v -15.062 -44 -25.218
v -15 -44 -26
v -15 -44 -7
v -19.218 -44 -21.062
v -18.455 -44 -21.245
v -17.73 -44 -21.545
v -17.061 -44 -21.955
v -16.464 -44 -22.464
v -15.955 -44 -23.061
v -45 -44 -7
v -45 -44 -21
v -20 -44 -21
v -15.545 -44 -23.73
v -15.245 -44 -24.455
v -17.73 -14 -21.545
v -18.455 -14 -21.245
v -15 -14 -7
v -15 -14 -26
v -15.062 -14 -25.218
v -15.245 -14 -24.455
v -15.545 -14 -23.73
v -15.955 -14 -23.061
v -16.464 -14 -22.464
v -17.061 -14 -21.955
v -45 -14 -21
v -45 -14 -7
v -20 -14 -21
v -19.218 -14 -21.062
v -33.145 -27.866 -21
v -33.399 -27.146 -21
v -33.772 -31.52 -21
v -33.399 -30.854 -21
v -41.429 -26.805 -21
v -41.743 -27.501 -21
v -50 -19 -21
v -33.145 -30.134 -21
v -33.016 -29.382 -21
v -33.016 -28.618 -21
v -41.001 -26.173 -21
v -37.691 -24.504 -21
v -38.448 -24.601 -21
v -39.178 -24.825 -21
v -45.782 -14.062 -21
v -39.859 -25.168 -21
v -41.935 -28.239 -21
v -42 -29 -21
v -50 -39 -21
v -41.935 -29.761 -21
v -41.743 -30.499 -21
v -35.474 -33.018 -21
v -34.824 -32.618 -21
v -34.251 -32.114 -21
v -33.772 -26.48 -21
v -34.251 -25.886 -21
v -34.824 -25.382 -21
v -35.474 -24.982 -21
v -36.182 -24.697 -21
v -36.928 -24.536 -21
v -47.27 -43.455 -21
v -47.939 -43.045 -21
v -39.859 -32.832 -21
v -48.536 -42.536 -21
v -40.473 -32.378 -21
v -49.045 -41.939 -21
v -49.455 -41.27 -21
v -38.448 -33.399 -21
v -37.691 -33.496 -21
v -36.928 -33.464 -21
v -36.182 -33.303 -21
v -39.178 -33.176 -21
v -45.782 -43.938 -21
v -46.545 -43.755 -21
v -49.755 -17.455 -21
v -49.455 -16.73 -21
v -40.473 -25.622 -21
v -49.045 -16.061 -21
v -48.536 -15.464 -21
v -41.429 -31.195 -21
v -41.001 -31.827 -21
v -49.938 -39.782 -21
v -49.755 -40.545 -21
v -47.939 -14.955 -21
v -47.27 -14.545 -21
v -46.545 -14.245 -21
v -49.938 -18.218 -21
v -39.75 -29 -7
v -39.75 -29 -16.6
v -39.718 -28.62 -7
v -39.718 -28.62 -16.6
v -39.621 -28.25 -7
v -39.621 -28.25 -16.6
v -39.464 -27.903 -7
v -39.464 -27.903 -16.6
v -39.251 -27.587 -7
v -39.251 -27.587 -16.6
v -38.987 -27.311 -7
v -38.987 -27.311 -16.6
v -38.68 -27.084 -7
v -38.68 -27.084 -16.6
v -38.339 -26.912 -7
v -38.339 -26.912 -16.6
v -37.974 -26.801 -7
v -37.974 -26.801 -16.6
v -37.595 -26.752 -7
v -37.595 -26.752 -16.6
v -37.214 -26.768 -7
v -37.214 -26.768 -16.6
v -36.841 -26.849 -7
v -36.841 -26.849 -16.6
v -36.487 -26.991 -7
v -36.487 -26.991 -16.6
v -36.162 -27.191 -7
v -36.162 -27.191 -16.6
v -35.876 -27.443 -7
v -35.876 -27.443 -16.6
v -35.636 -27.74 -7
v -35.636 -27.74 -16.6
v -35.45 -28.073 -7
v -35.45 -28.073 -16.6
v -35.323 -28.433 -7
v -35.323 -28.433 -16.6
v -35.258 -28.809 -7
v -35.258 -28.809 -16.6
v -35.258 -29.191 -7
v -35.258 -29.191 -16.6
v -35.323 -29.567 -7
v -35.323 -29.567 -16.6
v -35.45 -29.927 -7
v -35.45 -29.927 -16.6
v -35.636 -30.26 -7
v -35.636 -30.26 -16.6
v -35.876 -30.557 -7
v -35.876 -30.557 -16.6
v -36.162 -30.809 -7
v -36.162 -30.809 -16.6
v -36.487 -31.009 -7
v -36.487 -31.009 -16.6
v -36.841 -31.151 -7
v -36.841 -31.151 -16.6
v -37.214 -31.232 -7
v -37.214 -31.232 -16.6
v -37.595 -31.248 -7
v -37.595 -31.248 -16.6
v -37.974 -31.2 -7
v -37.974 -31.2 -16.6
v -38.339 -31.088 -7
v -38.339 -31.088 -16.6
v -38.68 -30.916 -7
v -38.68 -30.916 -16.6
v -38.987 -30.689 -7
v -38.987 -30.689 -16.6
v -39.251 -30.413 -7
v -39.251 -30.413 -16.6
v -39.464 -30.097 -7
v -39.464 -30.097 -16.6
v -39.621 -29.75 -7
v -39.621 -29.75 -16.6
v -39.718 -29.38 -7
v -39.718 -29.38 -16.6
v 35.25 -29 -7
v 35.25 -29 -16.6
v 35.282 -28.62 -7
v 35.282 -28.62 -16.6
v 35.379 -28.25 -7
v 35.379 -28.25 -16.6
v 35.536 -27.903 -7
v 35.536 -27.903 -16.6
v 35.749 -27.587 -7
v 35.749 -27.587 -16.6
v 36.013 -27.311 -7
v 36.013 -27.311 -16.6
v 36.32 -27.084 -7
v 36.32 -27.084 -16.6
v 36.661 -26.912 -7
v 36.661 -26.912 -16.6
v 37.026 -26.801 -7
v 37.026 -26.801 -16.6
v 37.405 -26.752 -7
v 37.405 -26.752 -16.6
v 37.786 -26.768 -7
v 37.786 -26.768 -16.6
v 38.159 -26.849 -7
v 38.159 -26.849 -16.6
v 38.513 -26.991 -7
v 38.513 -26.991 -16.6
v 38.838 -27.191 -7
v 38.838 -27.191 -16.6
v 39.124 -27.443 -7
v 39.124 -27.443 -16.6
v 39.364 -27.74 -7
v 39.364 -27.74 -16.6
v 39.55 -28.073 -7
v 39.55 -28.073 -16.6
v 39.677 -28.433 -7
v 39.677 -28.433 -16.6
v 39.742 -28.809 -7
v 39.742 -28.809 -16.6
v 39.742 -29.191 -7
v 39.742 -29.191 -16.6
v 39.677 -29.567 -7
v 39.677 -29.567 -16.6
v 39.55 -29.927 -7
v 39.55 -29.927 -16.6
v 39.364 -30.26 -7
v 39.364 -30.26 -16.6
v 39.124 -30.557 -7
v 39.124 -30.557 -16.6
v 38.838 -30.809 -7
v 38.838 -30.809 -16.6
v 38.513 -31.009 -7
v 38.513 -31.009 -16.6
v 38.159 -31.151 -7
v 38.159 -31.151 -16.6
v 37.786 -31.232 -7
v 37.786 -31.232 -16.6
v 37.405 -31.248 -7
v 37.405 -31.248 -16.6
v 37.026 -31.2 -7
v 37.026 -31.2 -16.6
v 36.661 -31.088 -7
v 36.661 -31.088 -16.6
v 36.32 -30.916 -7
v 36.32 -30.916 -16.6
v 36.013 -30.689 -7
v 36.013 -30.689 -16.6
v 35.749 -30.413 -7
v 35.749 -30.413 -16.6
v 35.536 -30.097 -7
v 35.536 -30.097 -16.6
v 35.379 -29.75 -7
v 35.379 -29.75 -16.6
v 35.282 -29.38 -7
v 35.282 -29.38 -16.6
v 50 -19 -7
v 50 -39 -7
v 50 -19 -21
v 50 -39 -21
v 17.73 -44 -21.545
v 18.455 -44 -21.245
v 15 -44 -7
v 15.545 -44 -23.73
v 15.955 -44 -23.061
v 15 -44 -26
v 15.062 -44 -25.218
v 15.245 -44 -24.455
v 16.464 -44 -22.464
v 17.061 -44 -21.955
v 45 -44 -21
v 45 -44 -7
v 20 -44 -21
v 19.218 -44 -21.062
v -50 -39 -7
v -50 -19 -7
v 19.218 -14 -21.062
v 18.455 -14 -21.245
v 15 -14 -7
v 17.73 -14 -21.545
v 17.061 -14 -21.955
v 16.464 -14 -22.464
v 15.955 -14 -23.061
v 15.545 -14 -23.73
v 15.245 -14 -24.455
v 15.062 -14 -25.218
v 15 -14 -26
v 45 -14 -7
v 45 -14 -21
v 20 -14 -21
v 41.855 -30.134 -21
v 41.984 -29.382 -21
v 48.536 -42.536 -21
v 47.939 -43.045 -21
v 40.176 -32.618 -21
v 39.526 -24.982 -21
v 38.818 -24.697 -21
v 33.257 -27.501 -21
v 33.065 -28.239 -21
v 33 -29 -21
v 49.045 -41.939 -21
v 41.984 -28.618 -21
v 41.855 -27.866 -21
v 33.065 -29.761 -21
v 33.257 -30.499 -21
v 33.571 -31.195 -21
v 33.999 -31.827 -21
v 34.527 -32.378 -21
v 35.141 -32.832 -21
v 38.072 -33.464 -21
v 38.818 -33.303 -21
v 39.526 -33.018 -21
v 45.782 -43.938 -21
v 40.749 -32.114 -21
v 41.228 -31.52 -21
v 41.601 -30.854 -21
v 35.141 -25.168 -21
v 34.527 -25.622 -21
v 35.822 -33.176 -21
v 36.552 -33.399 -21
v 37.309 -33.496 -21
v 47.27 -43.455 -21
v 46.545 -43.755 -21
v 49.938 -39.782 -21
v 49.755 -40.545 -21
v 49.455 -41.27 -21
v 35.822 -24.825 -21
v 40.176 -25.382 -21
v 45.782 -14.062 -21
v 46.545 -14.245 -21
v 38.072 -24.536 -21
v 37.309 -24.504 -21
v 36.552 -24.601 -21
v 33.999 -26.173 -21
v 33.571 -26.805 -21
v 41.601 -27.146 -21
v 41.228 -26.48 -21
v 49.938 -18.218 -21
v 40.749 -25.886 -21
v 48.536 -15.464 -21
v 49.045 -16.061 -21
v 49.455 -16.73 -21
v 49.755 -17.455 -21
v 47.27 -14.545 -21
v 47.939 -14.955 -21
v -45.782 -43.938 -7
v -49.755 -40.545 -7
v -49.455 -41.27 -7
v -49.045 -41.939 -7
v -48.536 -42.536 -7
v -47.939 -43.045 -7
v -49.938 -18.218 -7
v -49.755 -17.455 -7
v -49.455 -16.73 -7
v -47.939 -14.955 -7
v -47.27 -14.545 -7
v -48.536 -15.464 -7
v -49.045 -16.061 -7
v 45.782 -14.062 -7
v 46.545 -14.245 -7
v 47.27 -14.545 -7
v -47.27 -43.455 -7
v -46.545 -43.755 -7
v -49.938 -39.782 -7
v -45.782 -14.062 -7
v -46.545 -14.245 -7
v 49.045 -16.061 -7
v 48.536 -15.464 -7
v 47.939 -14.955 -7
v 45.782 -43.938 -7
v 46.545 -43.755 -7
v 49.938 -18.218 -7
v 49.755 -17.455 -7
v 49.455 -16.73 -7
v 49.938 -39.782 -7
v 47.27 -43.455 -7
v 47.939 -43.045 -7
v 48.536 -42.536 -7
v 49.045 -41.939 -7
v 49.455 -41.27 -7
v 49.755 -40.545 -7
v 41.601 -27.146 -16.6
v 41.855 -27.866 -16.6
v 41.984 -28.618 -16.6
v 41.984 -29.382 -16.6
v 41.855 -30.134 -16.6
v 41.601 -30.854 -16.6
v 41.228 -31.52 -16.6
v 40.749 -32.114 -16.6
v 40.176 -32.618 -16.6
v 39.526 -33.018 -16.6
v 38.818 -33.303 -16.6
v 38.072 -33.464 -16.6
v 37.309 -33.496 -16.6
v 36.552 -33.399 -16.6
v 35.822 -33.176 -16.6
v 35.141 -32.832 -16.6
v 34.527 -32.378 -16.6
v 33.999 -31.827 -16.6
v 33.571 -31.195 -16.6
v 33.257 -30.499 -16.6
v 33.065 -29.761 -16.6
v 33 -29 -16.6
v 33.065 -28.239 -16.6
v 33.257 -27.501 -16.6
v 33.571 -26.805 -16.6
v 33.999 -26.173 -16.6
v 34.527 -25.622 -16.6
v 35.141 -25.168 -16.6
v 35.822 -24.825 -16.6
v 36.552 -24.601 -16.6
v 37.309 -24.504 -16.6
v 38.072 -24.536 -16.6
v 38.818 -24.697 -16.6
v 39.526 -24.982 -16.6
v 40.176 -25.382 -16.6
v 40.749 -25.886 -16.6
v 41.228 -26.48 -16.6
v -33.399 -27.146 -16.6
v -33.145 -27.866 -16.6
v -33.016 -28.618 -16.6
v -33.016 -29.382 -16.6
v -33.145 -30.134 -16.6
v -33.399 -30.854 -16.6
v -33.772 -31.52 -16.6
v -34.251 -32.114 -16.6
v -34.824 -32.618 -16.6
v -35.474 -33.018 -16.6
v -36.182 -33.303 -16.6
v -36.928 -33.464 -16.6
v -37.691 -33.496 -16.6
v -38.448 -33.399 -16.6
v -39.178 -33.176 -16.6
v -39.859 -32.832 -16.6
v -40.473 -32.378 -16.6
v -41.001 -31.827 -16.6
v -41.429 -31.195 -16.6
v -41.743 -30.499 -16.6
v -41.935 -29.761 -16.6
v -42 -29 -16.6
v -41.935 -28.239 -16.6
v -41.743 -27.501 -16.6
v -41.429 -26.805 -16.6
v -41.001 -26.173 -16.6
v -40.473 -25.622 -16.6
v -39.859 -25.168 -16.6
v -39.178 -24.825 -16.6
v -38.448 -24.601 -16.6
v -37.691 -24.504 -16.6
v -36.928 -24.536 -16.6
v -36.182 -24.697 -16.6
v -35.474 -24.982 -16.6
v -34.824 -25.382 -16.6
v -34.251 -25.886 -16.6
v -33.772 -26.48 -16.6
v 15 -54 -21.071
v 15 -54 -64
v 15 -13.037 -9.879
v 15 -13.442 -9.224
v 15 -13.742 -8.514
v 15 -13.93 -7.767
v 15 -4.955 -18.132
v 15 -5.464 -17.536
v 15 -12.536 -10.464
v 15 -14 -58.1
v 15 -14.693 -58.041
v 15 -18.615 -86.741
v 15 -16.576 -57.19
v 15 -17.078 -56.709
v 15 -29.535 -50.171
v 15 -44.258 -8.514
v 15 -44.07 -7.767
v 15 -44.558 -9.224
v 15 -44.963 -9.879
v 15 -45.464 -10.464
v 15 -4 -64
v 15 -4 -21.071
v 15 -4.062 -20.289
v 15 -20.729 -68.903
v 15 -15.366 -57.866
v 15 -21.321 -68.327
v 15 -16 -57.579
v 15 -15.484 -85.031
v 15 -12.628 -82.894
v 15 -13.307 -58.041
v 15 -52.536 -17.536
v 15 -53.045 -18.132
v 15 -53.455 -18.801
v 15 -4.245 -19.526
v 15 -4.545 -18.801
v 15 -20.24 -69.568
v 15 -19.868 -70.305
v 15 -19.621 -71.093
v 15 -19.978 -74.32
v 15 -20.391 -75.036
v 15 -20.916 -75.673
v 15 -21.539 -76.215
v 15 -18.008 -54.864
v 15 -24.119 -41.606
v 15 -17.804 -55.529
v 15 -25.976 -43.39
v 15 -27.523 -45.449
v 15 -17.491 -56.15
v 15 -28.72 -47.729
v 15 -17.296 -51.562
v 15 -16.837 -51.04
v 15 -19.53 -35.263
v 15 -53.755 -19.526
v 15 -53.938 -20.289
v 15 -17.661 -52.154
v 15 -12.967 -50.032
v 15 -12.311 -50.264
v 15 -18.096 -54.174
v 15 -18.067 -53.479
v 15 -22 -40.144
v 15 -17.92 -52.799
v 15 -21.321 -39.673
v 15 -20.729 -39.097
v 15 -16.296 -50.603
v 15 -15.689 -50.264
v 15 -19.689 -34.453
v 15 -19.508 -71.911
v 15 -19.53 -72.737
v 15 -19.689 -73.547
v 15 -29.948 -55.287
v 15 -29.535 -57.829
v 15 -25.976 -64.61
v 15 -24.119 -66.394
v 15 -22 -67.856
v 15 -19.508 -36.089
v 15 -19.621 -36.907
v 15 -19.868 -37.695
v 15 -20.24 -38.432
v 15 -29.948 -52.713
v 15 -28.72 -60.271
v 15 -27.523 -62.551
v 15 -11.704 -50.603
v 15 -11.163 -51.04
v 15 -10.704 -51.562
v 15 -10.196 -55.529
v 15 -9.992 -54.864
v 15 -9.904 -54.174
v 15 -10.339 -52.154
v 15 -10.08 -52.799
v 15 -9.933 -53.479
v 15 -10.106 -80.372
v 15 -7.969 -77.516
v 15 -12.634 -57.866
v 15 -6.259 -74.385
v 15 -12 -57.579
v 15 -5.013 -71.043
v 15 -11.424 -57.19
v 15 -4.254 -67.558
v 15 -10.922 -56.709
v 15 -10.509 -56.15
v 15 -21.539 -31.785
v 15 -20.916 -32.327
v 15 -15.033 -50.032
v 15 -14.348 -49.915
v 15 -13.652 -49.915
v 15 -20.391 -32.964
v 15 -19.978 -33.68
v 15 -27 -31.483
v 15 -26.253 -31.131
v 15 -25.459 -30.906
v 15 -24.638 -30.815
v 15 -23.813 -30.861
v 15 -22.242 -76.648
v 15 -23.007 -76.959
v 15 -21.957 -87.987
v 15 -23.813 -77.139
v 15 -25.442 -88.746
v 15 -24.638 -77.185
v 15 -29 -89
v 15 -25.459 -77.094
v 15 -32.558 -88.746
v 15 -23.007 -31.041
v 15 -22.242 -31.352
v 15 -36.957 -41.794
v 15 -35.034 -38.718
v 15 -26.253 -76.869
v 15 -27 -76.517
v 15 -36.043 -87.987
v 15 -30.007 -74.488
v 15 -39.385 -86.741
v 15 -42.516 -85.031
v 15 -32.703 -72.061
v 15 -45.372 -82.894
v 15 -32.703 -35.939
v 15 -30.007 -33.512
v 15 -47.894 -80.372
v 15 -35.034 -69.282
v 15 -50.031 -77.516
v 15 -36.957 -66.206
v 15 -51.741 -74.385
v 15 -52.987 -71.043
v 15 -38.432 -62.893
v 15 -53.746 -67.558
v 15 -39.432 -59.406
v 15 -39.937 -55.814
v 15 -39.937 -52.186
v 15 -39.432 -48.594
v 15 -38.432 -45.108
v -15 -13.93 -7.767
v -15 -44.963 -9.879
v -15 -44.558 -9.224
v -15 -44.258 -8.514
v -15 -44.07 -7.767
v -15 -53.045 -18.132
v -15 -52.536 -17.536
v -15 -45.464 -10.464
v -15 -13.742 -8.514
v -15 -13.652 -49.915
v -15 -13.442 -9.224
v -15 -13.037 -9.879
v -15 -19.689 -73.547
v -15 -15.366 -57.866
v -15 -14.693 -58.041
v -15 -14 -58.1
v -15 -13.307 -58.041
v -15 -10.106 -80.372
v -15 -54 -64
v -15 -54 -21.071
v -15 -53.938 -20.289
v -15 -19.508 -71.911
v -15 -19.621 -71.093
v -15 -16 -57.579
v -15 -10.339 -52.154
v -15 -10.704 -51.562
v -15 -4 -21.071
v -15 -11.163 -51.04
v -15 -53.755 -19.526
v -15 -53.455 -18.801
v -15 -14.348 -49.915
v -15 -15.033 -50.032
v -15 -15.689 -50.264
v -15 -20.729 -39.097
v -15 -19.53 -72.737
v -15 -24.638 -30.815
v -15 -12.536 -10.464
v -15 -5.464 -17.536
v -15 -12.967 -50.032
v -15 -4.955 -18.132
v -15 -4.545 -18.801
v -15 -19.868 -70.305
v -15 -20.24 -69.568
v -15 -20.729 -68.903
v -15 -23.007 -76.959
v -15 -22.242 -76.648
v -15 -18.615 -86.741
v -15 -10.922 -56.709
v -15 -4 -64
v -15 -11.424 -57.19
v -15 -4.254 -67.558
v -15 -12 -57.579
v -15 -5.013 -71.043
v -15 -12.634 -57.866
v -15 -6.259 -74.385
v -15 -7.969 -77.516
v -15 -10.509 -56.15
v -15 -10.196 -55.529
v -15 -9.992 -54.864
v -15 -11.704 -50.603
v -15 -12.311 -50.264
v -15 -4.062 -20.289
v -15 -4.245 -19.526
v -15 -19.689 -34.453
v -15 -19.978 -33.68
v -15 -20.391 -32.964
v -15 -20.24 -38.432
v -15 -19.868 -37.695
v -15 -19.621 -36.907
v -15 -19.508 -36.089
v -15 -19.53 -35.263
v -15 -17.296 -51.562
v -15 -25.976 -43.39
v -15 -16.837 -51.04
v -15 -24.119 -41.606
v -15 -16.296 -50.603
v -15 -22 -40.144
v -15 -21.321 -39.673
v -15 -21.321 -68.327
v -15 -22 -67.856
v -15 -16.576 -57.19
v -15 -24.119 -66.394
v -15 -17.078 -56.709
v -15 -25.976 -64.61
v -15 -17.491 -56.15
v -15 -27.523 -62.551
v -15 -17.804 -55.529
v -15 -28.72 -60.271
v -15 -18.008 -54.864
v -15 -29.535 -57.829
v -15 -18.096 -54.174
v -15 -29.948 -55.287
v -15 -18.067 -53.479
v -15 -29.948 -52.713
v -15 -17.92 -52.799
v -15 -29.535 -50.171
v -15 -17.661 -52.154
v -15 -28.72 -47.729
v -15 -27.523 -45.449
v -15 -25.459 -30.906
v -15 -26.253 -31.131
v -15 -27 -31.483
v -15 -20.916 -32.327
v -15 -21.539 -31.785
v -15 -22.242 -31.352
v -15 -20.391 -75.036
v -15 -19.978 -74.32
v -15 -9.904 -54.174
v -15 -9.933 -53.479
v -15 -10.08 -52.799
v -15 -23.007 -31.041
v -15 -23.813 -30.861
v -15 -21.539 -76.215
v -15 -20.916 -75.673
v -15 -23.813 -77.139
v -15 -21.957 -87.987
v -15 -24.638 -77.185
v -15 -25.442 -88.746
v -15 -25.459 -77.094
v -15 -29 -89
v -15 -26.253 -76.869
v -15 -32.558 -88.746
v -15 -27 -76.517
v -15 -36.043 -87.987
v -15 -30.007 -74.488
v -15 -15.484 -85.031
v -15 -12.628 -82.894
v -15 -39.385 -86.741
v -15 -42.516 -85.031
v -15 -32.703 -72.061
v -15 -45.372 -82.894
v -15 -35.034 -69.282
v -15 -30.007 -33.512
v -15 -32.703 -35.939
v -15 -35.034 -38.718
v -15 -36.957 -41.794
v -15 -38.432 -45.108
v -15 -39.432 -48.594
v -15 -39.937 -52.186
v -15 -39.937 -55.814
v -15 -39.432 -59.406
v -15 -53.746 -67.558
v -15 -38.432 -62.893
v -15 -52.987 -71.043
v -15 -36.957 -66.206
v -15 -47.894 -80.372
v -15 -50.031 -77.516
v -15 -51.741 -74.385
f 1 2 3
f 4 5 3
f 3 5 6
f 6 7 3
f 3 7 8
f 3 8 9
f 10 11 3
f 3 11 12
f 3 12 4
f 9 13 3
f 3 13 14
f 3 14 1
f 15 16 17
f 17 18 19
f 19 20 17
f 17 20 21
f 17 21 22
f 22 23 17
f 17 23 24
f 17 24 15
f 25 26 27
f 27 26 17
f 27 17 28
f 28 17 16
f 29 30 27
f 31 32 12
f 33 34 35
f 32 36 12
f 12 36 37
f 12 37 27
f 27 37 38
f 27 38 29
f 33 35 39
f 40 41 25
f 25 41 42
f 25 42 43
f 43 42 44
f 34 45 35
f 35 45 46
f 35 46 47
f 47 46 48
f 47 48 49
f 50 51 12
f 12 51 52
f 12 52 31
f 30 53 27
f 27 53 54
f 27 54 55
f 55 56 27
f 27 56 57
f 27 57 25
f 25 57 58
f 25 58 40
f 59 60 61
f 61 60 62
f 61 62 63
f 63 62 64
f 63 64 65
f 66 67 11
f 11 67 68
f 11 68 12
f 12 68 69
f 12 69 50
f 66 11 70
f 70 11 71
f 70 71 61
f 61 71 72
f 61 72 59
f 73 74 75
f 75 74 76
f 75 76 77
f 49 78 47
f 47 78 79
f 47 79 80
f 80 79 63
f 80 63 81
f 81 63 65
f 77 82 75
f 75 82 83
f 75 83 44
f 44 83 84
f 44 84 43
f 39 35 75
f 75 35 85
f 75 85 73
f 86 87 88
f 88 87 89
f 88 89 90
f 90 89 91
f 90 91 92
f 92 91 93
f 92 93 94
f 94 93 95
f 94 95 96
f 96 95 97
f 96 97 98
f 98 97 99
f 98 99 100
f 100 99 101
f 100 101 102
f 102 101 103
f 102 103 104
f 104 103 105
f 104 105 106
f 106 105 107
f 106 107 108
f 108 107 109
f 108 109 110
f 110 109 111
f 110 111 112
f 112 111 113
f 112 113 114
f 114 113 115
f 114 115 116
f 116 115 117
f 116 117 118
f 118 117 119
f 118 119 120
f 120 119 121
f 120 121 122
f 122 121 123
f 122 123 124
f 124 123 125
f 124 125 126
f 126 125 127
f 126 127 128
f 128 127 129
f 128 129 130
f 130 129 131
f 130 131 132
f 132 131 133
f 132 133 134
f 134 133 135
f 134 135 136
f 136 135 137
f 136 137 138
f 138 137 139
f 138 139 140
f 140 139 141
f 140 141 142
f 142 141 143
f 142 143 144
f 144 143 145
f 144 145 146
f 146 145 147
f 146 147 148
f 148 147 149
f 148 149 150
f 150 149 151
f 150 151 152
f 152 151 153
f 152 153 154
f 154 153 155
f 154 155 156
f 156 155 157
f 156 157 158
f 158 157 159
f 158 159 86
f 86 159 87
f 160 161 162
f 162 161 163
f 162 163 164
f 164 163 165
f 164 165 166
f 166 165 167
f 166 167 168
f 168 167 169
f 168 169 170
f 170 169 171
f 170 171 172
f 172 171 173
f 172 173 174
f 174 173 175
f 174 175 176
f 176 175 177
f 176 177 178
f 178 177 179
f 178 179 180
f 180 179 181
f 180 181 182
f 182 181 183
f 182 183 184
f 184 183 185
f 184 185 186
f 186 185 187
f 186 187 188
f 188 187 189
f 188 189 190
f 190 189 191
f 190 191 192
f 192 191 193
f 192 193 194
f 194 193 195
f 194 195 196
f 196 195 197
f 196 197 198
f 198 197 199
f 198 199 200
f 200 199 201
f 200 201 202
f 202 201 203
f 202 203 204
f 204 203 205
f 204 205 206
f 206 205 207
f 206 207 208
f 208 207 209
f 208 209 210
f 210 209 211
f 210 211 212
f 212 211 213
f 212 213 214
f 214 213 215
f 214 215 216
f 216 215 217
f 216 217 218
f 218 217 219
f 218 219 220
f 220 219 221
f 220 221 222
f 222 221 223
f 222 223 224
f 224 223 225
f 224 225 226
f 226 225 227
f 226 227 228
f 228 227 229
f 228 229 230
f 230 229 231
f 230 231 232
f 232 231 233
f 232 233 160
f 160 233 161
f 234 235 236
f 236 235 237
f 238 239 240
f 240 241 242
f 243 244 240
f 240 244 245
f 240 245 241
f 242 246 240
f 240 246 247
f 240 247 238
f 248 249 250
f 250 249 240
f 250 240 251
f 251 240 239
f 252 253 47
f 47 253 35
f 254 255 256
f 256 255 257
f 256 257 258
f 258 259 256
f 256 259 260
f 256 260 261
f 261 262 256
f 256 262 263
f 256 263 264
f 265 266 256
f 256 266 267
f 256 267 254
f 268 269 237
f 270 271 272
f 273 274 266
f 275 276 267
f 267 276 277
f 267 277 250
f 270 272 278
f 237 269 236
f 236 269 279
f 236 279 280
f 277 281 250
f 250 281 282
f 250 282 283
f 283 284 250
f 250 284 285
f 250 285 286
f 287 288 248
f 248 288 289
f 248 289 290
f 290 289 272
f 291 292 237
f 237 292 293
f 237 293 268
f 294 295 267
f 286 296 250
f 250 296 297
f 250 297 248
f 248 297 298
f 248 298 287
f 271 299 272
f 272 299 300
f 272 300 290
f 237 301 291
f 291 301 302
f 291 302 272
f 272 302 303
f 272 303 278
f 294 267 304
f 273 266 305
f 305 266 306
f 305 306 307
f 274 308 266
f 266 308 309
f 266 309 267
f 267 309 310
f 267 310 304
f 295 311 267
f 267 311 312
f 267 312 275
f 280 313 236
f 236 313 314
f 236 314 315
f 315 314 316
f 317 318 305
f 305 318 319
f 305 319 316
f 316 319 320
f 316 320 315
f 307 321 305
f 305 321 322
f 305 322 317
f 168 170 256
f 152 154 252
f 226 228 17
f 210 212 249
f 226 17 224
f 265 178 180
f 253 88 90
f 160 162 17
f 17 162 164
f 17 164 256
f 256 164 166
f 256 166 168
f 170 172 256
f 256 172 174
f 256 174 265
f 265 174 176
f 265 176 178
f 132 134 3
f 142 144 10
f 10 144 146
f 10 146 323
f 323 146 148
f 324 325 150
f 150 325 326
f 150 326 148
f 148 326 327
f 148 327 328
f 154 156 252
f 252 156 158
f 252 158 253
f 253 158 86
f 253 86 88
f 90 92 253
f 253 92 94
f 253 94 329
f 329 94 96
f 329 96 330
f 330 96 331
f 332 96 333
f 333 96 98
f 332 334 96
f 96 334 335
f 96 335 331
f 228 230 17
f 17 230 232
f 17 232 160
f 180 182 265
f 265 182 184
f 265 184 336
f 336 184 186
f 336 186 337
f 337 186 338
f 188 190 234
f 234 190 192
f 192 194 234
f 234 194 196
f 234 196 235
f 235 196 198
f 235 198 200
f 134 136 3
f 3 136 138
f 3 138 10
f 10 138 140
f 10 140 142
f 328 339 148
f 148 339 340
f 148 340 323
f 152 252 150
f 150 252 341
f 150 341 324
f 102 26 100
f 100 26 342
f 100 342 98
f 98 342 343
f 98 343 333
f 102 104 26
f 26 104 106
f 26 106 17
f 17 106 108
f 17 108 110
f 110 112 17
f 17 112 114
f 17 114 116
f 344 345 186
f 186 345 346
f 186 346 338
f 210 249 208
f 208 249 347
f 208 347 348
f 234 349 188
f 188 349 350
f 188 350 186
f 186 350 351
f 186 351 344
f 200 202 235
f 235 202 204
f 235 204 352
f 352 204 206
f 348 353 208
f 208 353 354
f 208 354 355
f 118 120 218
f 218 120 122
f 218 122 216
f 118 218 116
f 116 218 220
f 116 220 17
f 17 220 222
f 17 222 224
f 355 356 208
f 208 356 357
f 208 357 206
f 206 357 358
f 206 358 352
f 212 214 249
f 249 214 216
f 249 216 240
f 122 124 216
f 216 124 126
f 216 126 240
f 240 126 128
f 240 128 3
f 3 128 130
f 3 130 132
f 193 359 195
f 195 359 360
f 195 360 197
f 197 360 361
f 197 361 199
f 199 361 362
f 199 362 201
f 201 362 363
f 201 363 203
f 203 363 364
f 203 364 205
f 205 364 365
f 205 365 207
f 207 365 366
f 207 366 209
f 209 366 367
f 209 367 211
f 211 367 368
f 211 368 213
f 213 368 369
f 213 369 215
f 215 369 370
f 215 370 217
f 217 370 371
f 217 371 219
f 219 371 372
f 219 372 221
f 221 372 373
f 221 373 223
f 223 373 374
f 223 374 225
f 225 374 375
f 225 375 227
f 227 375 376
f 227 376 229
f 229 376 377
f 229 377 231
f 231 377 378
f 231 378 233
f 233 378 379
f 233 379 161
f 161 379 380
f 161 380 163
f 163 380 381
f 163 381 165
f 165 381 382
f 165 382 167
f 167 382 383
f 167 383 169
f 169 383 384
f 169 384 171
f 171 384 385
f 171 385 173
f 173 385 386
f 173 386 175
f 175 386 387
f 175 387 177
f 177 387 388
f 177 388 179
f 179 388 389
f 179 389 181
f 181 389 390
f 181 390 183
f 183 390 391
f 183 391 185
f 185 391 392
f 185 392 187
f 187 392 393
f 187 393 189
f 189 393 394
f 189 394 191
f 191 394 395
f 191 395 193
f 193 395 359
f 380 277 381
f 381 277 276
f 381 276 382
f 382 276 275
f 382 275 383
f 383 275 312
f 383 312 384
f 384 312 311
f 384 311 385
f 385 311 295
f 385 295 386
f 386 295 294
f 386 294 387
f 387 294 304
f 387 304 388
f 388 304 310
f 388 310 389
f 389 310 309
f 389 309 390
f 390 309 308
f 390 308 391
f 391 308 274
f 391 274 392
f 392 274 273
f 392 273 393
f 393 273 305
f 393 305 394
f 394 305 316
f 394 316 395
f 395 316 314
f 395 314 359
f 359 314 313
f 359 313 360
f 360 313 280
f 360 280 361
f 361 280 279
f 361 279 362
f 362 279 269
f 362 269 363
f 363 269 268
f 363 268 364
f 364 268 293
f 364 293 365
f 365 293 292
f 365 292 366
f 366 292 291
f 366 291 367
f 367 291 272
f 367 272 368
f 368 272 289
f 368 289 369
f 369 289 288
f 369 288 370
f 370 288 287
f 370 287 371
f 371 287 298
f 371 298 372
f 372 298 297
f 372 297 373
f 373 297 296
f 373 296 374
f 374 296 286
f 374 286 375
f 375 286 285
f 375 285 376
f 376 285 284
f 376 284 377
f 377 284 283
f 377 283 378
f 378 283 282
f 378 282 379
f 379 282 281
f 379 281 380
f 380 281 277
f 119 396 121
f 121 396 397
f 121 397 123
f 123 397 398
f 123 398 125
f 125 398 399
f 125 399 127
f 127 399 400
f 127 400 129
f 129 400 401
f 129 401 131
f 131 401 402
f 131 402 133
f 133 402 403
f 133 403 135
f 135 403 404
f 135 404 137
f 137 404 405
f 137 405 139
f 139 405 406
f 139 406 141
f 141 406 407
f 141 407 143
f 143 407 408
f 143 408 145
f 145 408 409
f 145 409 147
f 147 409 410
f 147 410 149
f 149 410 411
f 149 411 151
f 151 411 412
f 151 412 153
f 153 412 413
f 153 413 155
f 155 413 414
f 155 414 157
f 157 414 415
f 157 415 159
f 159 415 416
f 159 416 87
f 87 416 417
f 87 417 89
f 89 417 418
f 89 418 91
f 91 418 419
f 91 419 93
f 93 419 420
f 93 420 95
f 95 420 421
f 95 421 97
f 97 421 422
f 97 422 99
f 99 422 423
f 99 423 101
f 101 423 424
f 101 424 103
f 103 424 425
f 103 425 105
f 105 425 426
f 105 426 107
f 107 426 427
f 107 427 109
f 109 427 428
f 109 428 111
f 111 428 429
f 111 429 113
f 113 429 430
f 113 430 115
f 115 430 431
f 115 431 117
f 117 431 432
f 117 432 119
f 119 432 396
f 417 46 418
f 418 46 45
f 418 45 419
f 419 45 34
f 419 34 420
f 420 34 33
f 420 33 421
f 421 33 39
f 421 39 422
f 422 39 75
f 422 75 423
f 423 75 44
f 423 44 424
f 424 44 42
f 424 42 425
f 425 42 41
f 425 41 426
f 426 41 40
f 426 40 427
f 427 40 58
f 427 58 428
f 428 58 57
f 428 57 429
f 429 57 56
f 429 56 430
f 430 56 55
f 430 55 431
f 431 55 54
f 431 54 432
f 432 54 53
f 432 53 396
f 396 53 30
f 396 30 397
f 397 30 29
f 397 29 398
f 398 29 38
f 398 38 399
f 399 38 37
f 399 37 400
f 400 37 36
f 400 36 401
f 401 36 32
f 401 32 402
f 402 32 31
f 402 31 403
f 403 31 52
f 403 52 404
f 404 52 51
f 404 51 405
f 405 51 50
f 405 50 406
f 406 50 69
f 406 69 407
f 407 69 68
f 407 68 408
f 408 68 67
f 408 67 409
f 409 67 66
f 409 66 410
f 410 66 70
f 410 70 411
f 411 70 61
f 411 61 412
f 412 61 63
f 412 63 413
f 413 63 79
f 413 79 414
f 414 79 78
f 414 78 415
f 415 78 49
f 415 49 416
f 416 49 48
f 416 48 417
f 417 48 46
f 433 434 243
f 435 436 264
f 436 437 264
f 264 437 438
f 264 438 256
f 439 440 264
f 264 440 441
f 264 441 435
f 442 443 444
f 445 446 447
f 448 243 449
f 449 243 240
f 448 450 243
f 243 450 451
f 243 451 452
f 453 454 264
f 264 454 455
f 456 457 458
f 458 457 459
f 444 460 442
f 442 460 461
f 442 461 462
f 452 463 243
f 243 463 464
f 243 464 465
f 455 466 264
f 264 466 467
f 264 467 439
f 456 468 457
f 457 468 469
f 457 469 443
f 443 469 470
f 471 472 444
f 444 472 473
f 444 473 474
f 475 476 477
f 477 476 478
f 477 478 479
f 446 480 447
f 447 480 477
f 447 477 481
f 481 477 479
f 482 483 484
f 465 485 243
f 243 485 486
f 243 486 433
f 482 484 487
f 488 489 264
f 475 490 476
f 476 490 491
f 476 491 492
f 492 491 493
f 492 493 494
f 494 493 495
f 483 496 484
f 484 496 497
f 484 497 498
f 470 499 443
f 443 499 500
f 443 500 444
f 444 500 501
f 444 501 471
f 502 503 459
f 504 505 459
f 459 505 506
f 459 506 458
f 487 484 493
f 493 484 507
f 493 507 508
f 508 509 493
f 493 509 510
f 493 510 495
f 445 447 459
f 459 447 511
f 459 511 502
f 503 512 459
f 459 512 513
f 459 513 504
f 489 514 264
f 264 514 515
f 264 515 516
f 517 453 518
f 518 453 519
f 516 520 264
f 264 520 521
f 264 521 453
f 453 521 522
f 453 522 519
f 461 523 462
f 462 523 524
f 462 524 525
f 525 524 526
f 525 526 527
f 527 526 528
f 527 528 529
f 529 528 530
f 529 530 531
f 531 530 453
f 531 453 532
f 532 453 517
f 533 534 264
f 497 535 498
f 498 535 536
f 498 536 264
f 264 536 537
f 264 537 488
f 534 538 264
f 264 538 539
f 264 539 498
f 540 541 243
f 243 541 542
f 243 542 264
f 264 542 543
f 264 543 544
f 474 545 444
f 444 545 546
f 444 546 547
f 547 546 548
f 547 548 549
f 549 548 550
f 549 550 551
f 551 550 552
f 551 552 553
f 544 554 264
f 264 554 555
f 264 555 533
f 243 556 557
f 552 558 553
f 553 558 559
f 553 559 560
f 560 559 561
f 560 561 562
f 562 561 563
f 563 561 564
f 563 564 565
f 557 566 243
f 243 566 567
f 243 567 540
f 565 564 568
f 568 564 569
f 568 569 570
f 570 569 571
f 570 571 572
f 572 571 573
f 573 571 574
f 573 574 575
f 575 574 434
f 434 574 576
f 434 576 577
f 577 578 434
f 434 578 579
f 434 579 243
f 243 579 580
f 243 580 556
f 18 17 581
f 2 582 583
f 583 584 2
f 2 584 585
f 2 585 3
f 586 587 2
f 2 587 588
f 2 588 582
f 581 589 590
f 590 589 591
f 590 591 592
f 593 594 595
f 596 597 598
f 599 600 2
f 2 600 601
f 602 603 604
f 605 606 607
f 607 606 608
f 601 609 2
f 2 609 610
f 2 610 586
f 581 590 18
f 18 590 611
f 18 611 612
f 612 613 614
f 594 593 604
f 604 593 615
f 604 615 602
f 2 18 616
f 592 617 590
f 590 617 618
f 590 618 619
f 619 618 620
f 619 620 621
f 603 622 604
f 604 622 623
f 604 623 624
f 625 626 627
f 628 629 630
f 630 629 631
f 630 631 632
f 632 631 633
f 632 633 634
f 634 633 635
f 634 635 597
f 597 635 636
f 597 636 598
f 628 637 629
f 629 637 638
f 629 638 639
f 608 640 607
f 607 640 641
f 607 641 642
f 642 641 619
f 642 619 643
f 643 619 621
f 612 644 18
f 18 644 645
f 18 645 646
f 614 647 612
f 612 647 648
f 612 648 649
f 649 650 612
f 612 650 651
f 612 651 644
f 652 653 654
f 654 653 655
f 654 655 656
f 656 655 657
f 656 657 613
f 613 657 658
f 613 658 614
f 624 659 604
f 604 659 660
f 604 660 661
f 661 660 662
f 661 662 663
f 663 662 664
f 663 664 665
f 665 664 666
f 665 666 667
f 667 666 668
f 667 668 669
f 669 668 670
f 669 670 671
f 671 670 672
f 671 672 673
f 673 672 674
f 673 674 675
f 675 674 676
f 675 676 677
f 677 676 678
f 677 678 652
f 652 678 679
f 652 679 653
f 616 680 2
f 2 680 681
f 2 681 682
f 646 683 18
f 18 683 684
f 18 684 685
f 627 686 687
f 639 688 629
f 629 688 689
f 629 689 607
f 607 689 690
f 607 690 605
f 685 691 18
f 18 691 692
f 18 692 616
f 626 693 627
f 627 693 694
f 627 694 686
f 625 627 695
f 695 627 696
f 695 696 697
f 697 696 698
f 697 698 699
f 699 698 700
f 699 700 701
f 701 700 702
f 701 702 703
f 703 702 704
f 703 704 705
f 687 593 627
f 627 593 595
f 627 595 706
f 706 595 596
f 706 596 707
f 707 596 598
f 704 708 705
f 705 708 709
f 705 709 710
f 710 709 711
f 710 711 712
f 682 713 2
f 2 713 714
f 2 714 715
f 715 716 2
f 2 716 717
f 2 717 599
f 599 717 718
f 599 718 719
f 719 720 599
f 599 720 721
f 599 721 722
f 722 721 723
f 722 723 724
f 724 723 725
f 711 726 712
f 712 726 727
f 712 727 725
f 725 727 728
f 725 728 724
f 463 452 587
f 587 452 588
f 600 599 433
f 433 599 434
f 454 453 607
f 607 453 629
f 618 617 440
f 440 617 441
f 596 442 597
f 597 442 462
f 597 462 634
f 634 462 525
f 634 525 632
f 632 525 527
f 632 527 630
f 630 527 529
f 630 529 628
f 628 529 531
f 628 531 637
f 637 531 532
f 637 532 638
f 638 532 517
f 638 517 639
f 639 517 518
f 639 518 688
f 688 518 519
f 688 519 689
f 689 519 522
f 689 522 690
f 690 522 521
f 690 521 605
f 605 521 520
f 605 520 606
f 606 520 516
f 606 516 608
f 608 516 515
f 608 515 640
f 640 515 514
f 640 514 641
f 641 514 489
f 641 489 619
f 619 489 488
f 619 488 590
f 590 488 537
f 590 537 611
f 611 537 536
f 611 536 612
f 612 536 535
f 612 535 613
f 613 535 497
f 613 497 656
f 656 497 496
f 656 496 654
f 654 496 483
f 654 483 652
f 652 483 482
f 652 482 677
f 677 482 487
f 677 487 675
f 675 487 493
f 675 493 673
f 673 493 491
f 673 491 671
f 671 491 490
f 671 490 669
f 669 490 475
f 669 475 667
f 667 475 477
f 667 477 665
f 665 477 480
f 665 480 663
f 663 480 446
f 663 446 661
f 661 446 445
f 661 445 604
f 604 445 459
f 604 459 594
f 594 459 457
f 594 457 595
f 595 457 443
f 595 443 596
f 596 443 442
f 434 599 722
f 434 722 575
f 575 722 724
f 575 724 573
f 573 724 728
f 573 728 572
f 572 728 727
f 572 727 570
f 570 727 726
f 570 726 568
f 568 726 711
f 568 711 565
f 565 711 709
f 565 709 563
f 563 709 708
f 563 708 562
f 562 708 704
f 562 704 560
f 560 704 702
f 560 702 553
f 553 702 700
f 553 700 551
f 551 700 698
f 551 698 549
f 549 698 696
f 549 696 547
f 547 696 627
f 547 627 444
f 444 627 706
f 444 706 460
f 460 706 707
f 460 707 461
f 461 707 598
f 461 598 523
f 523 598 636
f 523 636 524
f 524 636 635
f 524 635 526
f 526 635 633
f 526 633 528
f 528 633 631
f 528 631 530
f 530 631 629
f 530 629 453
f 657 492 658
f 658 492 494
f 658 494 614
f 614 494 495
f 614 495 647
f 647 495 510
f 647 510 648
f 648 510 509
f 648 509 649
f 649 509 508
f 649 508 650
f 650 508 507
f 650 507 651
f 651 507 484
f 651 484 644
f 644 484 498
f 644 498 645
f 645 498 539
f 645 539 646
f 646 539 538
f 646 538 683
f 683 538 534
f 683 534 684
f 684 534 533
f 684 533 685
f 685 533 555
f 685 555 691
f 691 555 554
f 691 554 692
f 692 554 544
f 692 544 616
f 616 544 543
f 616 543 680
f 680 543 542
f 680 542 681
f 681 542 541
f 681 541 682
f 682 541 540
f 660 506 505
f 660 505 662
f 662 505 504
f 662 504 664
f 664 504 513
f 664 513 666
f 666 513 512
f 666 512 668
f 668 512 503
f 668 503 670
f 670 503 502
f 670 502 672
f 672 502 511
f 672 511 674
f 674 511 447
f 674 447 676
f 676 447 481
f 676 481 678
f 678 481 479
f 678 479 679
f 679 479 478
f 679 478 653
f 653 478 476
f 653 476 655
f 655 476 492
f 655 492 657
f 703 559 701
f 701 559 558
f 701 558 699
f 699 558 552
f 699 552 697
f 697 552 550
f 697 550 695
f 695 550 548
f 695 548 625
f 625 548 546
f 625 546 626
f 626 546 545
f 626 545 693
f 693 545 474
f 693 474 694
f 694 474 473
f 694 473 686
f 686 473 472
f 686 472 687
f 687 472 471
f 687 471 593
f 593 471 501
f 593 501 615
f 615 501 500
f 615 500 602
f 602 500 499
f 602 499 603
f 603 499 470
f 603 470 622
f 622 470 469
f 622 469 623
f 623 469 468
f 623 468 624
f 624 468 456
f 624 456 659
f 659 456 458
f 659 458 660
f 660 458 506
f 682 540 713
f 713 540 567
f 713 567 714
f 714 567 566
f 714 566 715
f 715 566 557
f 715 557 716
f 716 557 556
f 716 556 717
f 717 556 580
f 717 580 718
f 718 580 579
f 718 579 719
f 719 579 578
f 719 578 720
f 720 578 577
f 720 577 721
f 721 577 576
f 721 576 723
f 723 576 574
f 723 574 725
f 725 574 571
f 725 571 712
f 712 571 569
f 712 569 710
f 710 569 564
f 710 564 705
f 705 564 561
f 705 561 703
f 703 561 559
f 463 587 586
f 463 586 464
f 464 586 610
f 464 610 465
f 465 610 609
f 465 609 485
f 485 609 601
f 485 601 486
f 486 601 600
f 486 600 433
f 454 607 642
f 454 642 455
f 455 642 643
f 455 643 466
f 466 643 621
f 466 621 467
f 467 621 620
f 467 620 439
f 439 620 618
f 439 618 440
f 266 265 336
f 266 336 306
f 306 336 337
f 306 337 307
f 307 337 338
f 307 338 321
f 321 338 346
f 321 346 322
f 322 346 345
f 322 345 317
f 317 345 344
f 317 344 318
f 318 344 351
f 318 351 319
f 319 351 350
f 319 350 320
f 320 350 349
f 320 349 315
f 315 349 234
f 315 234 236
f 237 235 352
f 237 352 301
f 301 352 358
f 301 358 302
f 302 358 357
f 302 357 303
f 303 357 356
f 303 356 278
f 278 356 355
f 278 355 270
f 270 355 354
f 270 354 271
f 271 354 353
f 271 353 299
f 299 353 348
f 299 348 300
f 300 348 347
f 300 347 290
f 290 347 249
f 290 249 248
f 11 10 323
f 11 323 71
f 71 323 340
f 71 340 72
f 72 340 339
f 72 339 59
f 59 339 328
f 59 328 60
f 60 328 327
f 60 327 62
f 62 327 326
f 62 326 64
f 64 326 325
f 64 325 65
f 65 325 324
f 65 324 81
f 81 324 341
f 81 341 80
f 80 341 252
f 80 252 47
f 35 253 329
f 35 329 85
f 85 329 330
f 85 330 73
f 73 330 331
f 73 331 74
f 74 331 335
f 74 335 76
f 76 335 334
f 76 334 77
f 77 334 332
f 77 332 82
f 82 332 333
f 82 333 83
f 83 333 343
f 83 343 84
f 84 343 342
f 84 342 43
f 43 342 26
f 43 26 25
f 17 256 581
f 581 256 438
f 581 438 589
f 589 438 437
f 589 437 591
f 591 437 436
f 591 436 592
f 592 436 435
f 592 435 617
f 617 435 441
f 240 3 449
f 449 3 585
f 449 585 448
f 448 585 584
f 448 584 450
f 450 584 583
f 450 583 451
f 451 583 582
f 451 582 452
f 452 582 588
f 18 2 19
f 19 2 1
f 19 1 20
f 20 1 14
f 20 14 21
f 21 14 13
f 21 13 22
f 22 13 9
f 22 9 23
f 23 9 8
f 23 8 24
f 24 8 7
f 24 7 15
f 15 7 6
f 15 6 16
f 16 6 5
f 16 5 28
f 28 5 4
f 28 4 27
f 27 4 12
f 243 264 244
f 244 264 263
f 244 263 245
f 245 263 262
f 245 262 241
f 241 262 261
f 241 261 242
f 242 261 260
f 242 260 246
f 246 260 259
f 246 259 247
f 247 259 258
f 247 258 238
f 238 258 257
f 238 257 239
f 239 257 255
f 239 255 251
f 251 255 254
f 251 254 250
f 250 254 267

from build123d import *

# Parameters (mm, degrees)
SKETCH1_W               = 100
SKETCH1_H               = 30
BOSS_EXTRUDE1_DEPTH     = 14
SKETCH2_R               = 2.25
CUT_EXTRUDE1_DEPTH      = 14
SKETCH3_R               = 4.5
CUT_EXTRUDE2_DEPTH      = 4.4
BOSS_EXTRUDE2_DEPTH     = 15
CUT_EXTRUDE3_DEPTH      = 116.485929879
CUT_EXTRUDE3_DEPTH_BACK = 116.485929879
SKETCH6_R               = 4.1
FILLET1_R               = 25
CUT_EXTRUDE5_DEPTH      = 116.485929879
CUT_EXTRUDE5_DEPTH_BACK = 116.485929879
FILLET2_R               = 5


# Some blends are built 0.0001 mm under size
with BuildPart() as part:
    # Sketch1 → Boss-Extrude1 (new body)
    with BuildSketch(Plane(origin=(0, 0, -7), x_dir=(-1, 0, 0), z_dir=(0, 0, -1))):
        with Locations((0, -29)):
            Rectangle(SKETCH1_W, SKETCH1_H)
    extrude(amount=BOSS_EXTRUDE1_DEPTH)

    # Sketch2 → Cut-Extrude1 (cut)
    with BuildSketch(Plane(origin=(0, 0, -21), x_dir=(-1, 0, 0), z_dir=(0, 0, -1))):
        with Locations((-37.5, -29)):
            Circle(SKETCH2_R)
        with Locations((37.5, -29)):
            Circle(SKETCH2_R)
    extrude(amount=-CUT_EXTRUDE1_DEPTH, mode=Mode.SUBTRACT)

    # Sketch3 → Cut-Extrude2 (cut)
    with BuildSketch(Plane(origin=(0, 0, -21), x_dir=(-1, 0, 0), z_dir=(0, 0, -1))):
        with Locations((-37.5, -29)):
            Circle(SKETCH3_R)
        with Locations((37.5, -29)):
            Circle(SKETCH3_R)
    extrude(amount=-CUT_EXTRUDE2_DEPTH, mode=Mode.SUBTRACT)

    # Sketch5 → Boss-Extrude2 (add, symmetric)
    with BuildSketch(Plane(origin=(0, 0, 0), x_dir=(0, 0, -1), z_dir=(1, 0, 0))):
        Polygon((9, -14), (19, -4), (89, -4), (89, -54), (19, -54), (9, -44), align=None)
    extrude(amount=BOSS_EXTRUDE2_DEPTH, both=True)

    # Sketch6 → Cut-Extrude3 (cut, two sides: drawn at the far end of the back side and taken through both)
    with BuildSketch(Plane(origin=(0, 0, 0), x_dir=(0, 0, -1), z_dir=(1, 0, 0)).offset(-CUT_EXTRUDE3_DEPTH_BACK)):
        with Locations((54, -14)):
            Circle(SKETCH6_R)
    extrude(amount=CUT_EXTRUDE3_DEPTH + CUT_EXTRUDE3_DEPTH_BACK, mode=Mode.SUBTRACT)

    # Fillet1
    fillet1_edges = [part.edges().sort_by_distance(p)[0] for p in [
        (0, -4, -89),
        (0, -54, -89),
    ]]
    fillet(fillet1_edges, radius=FILLET1_R - 0.0001)  # a hair under: the kernel refuses the full size

    # Sketch7 → Cut-Extrude5 (cut, two sides: drawn at the far end of the back side and taken through both)
    with BuildSketch(Plane(origin=(0, 0, 0), x_dir=(0, 0, -1), z_dir=(1, 0, 0)).offset(-CUT_EXTRUDE5_DEPTH_BACK)):
        with BuildLine():
            ThreePointArc((31.483339502, -27), (54, -40), (76.516660498, -27))
            ThreePointArc((76.516660498, -27), (74.686533479, -20.169872981), (67.856406461, -22))
            ThreePointArc((67.856406461, -22), (54, -30), (40.143593539, -22))
            ThreePointArc((40.143593539, -22), (33.313466521, -20.169872981), (31.483339502, -27))
        make_face()
    extrude(amount=CUT_EXTRUDE5_DEPTH + CUT_EXTRUDE5_DEPTH_BACK, mode=Mode.SUBTRACT)

    # Fillet2
    # the kernel refuses this fillet: 5 mm, written as the material it adds along each edge
    with BuildSketch(Plane(origin=(-15, -14, -21), x_dir=(0, 0, -1), z_dir=(0, -1, 0))) as fillet2_piece_1:
        with BuildLine():
            CenterArc((FILLET2_R, -FILLET2_R), FILLET2_R, 90, 90)
            Line((0, -FILLET2_R), (0, 0))
            Line((0, 0), (FILLET2_R, 0))
        make_face()
    extrude(amount=30)
    with BuildSketch(Plane(origin=(15, -14, -21), x_dir=(0, 0, -1), z_dir=(0, -1, 0))) as fillet2_piece_2:
        with BuildLine():
            CenterArc((FILLET2_R, FILLET2_R), FILLET2_R, 180, 90)
            Line((0, FILLET2_R), (0, 0))
            Line((0, 0), (FILLET2_R, 0))
        make_face()
    extrude(amount=30)
    with BuildSketch(Plane(origin=(-15, -14, -9), x_dir=(0, 0.707106781186544, -0.7071067811865509), z_dir=(1, 0, 0))) as fillet2_piece_3_section:
        with BuildLine():
            CenterArc((FILLET2_R * 0.414213562373, FILLET2_R), FILLET2_R, 225, 45)
            Line((-FILLET2_R * 0.292893218813, FILLET2_R * 0.292893218813), (0, 0))
            Line((0, 0), (FILLET2_R * 0.414213562373, 0))
        make_face()
    fillet2_piece_3 = extrude(amount=30, mode=Mode.PRIVATE)
    fillet2_piece_3 = split(fillet2_piece_3, bisect_by=Plane(origin=(0, -13.688256851, -7), z_dir=(0, 0, -1)), keep=Keep.TOP, mode=Mode.PRIVATE)
    add(fillet2_piece_3)
    with BuildSketch(Plane(origin=(-15, -44, -9), x_dir=(0, -0.707106781186544, -0.7071067811865509), z_dir=(1, 0, 0))) as fillet2_piece_4_section:
        with BuildLine():
            CenterArc((FILLET2_R * 0.414213562373, -FILLET2_R), FILLET2_R, 90, 45)
            Line((-FILLET2_R * 0.292893218813, -FILLET2_R * 0.292893218813), (0, 0))
            Line((0, 0), (FILLET2_R * 0.414213562373, 0))
        make_face()
    fillet2_piece_4 = extrude(amount=30, mode=Mode.PRIVATE)
    fillet2_piece_4 = split(fillet2_piece_4, bisect_by=Plane(origin=(0, -44.311743149, -7), z_dir=(0, 0, -1)), keep=Keep.TOP, mode=Mode.PRIVATE)
    add(fillet2_piece_4)
    # the kernel refuses this fillet: 5 mm, written as the material it takes off along each edge
    with BuildSketch(Plane(origin=(-20.17766953, -54, -19), x_dir=(0, 0, -1), z_dir=(1, 0, 0))) as fillet2_2_piece_1:
        with BuildLine():
            CenterArc((FILLET2_R * 0.414213562373, FILLET2_R), FILLET2_R, 225, 45)
            Line((-FILLET2_R * 0.292893218813, FILLET2_R * 0.292893218813), (0, 0))
            Line((0, 0), (FILLET2_R * 0.414213562373, 0))
        make_face()
    extrude(amount=40.355339059, mode=Mode.SUBTRACT)
    with BuildSketch(Plane(origin=(20.17766953, -4, -19), x_dir=(0, -0.7071067811865441, 0.707106781186551), z_dir=(-1, 0, 0))) as fillet2_2_piece_2:
        with BuildLine():
            CenterArc((FILLET2_R * 0.414213562373, -FILLET2_R), FILLET2_R, 90, 45)
            Line((-FILLET2_R * 0.292893218813, -FILLET2_R * 0.292893218813), (0, 0))
            Line((0, 0), (FILLET2_R * 0.414213562373, 0))
        make_face()
    extrude(amount=40.355339059, mode=Mode.SUBTRACT)
    with BuildSketch(Plane(origin=(50, -14, 5.5), x_dir=(-1, 0, 0), z_dir=(0, 0, -1)), Plane(origin=(50, -44, 5.5), x_dir=(0, 1, 0), z_dir=(0, 0, -1))) as fillet2_2_piece_3:
        with BuildLine():
            CenterArc((FILLET2_R, -FILLET2_R), FILLET2_R, 90, 90)
            Line((0, -FILLET2_R), (0, 0))
            Line((0, 0), (FILLET2_R, 0))
        make_face()
    extrude(amount=39, mode=Mode.SUBTRACT)
    with BuildSketch(Plane(origin=(-50, -14, 5.5), x_dir=(1, 0, 0), z_dir=(0, 0, -1)), Plane(origin=(-50, -44, 5.5), x_dir=(0, 1, 0), z_dir=(0, 0, -1))) as fillet2_2_piece_4:
        with BuildLine():
            CenterArc((FILLET2_R, FILLET2_R), FILLET2_R, 180, 90)
            Line((0, FILLET2_R), (0, 0))
            Line((0, 0), (FILLET2_R, 0))
        make_face()
    extrude(amount=39, mode=Mode.SUBTRACT)


solid = part.part
